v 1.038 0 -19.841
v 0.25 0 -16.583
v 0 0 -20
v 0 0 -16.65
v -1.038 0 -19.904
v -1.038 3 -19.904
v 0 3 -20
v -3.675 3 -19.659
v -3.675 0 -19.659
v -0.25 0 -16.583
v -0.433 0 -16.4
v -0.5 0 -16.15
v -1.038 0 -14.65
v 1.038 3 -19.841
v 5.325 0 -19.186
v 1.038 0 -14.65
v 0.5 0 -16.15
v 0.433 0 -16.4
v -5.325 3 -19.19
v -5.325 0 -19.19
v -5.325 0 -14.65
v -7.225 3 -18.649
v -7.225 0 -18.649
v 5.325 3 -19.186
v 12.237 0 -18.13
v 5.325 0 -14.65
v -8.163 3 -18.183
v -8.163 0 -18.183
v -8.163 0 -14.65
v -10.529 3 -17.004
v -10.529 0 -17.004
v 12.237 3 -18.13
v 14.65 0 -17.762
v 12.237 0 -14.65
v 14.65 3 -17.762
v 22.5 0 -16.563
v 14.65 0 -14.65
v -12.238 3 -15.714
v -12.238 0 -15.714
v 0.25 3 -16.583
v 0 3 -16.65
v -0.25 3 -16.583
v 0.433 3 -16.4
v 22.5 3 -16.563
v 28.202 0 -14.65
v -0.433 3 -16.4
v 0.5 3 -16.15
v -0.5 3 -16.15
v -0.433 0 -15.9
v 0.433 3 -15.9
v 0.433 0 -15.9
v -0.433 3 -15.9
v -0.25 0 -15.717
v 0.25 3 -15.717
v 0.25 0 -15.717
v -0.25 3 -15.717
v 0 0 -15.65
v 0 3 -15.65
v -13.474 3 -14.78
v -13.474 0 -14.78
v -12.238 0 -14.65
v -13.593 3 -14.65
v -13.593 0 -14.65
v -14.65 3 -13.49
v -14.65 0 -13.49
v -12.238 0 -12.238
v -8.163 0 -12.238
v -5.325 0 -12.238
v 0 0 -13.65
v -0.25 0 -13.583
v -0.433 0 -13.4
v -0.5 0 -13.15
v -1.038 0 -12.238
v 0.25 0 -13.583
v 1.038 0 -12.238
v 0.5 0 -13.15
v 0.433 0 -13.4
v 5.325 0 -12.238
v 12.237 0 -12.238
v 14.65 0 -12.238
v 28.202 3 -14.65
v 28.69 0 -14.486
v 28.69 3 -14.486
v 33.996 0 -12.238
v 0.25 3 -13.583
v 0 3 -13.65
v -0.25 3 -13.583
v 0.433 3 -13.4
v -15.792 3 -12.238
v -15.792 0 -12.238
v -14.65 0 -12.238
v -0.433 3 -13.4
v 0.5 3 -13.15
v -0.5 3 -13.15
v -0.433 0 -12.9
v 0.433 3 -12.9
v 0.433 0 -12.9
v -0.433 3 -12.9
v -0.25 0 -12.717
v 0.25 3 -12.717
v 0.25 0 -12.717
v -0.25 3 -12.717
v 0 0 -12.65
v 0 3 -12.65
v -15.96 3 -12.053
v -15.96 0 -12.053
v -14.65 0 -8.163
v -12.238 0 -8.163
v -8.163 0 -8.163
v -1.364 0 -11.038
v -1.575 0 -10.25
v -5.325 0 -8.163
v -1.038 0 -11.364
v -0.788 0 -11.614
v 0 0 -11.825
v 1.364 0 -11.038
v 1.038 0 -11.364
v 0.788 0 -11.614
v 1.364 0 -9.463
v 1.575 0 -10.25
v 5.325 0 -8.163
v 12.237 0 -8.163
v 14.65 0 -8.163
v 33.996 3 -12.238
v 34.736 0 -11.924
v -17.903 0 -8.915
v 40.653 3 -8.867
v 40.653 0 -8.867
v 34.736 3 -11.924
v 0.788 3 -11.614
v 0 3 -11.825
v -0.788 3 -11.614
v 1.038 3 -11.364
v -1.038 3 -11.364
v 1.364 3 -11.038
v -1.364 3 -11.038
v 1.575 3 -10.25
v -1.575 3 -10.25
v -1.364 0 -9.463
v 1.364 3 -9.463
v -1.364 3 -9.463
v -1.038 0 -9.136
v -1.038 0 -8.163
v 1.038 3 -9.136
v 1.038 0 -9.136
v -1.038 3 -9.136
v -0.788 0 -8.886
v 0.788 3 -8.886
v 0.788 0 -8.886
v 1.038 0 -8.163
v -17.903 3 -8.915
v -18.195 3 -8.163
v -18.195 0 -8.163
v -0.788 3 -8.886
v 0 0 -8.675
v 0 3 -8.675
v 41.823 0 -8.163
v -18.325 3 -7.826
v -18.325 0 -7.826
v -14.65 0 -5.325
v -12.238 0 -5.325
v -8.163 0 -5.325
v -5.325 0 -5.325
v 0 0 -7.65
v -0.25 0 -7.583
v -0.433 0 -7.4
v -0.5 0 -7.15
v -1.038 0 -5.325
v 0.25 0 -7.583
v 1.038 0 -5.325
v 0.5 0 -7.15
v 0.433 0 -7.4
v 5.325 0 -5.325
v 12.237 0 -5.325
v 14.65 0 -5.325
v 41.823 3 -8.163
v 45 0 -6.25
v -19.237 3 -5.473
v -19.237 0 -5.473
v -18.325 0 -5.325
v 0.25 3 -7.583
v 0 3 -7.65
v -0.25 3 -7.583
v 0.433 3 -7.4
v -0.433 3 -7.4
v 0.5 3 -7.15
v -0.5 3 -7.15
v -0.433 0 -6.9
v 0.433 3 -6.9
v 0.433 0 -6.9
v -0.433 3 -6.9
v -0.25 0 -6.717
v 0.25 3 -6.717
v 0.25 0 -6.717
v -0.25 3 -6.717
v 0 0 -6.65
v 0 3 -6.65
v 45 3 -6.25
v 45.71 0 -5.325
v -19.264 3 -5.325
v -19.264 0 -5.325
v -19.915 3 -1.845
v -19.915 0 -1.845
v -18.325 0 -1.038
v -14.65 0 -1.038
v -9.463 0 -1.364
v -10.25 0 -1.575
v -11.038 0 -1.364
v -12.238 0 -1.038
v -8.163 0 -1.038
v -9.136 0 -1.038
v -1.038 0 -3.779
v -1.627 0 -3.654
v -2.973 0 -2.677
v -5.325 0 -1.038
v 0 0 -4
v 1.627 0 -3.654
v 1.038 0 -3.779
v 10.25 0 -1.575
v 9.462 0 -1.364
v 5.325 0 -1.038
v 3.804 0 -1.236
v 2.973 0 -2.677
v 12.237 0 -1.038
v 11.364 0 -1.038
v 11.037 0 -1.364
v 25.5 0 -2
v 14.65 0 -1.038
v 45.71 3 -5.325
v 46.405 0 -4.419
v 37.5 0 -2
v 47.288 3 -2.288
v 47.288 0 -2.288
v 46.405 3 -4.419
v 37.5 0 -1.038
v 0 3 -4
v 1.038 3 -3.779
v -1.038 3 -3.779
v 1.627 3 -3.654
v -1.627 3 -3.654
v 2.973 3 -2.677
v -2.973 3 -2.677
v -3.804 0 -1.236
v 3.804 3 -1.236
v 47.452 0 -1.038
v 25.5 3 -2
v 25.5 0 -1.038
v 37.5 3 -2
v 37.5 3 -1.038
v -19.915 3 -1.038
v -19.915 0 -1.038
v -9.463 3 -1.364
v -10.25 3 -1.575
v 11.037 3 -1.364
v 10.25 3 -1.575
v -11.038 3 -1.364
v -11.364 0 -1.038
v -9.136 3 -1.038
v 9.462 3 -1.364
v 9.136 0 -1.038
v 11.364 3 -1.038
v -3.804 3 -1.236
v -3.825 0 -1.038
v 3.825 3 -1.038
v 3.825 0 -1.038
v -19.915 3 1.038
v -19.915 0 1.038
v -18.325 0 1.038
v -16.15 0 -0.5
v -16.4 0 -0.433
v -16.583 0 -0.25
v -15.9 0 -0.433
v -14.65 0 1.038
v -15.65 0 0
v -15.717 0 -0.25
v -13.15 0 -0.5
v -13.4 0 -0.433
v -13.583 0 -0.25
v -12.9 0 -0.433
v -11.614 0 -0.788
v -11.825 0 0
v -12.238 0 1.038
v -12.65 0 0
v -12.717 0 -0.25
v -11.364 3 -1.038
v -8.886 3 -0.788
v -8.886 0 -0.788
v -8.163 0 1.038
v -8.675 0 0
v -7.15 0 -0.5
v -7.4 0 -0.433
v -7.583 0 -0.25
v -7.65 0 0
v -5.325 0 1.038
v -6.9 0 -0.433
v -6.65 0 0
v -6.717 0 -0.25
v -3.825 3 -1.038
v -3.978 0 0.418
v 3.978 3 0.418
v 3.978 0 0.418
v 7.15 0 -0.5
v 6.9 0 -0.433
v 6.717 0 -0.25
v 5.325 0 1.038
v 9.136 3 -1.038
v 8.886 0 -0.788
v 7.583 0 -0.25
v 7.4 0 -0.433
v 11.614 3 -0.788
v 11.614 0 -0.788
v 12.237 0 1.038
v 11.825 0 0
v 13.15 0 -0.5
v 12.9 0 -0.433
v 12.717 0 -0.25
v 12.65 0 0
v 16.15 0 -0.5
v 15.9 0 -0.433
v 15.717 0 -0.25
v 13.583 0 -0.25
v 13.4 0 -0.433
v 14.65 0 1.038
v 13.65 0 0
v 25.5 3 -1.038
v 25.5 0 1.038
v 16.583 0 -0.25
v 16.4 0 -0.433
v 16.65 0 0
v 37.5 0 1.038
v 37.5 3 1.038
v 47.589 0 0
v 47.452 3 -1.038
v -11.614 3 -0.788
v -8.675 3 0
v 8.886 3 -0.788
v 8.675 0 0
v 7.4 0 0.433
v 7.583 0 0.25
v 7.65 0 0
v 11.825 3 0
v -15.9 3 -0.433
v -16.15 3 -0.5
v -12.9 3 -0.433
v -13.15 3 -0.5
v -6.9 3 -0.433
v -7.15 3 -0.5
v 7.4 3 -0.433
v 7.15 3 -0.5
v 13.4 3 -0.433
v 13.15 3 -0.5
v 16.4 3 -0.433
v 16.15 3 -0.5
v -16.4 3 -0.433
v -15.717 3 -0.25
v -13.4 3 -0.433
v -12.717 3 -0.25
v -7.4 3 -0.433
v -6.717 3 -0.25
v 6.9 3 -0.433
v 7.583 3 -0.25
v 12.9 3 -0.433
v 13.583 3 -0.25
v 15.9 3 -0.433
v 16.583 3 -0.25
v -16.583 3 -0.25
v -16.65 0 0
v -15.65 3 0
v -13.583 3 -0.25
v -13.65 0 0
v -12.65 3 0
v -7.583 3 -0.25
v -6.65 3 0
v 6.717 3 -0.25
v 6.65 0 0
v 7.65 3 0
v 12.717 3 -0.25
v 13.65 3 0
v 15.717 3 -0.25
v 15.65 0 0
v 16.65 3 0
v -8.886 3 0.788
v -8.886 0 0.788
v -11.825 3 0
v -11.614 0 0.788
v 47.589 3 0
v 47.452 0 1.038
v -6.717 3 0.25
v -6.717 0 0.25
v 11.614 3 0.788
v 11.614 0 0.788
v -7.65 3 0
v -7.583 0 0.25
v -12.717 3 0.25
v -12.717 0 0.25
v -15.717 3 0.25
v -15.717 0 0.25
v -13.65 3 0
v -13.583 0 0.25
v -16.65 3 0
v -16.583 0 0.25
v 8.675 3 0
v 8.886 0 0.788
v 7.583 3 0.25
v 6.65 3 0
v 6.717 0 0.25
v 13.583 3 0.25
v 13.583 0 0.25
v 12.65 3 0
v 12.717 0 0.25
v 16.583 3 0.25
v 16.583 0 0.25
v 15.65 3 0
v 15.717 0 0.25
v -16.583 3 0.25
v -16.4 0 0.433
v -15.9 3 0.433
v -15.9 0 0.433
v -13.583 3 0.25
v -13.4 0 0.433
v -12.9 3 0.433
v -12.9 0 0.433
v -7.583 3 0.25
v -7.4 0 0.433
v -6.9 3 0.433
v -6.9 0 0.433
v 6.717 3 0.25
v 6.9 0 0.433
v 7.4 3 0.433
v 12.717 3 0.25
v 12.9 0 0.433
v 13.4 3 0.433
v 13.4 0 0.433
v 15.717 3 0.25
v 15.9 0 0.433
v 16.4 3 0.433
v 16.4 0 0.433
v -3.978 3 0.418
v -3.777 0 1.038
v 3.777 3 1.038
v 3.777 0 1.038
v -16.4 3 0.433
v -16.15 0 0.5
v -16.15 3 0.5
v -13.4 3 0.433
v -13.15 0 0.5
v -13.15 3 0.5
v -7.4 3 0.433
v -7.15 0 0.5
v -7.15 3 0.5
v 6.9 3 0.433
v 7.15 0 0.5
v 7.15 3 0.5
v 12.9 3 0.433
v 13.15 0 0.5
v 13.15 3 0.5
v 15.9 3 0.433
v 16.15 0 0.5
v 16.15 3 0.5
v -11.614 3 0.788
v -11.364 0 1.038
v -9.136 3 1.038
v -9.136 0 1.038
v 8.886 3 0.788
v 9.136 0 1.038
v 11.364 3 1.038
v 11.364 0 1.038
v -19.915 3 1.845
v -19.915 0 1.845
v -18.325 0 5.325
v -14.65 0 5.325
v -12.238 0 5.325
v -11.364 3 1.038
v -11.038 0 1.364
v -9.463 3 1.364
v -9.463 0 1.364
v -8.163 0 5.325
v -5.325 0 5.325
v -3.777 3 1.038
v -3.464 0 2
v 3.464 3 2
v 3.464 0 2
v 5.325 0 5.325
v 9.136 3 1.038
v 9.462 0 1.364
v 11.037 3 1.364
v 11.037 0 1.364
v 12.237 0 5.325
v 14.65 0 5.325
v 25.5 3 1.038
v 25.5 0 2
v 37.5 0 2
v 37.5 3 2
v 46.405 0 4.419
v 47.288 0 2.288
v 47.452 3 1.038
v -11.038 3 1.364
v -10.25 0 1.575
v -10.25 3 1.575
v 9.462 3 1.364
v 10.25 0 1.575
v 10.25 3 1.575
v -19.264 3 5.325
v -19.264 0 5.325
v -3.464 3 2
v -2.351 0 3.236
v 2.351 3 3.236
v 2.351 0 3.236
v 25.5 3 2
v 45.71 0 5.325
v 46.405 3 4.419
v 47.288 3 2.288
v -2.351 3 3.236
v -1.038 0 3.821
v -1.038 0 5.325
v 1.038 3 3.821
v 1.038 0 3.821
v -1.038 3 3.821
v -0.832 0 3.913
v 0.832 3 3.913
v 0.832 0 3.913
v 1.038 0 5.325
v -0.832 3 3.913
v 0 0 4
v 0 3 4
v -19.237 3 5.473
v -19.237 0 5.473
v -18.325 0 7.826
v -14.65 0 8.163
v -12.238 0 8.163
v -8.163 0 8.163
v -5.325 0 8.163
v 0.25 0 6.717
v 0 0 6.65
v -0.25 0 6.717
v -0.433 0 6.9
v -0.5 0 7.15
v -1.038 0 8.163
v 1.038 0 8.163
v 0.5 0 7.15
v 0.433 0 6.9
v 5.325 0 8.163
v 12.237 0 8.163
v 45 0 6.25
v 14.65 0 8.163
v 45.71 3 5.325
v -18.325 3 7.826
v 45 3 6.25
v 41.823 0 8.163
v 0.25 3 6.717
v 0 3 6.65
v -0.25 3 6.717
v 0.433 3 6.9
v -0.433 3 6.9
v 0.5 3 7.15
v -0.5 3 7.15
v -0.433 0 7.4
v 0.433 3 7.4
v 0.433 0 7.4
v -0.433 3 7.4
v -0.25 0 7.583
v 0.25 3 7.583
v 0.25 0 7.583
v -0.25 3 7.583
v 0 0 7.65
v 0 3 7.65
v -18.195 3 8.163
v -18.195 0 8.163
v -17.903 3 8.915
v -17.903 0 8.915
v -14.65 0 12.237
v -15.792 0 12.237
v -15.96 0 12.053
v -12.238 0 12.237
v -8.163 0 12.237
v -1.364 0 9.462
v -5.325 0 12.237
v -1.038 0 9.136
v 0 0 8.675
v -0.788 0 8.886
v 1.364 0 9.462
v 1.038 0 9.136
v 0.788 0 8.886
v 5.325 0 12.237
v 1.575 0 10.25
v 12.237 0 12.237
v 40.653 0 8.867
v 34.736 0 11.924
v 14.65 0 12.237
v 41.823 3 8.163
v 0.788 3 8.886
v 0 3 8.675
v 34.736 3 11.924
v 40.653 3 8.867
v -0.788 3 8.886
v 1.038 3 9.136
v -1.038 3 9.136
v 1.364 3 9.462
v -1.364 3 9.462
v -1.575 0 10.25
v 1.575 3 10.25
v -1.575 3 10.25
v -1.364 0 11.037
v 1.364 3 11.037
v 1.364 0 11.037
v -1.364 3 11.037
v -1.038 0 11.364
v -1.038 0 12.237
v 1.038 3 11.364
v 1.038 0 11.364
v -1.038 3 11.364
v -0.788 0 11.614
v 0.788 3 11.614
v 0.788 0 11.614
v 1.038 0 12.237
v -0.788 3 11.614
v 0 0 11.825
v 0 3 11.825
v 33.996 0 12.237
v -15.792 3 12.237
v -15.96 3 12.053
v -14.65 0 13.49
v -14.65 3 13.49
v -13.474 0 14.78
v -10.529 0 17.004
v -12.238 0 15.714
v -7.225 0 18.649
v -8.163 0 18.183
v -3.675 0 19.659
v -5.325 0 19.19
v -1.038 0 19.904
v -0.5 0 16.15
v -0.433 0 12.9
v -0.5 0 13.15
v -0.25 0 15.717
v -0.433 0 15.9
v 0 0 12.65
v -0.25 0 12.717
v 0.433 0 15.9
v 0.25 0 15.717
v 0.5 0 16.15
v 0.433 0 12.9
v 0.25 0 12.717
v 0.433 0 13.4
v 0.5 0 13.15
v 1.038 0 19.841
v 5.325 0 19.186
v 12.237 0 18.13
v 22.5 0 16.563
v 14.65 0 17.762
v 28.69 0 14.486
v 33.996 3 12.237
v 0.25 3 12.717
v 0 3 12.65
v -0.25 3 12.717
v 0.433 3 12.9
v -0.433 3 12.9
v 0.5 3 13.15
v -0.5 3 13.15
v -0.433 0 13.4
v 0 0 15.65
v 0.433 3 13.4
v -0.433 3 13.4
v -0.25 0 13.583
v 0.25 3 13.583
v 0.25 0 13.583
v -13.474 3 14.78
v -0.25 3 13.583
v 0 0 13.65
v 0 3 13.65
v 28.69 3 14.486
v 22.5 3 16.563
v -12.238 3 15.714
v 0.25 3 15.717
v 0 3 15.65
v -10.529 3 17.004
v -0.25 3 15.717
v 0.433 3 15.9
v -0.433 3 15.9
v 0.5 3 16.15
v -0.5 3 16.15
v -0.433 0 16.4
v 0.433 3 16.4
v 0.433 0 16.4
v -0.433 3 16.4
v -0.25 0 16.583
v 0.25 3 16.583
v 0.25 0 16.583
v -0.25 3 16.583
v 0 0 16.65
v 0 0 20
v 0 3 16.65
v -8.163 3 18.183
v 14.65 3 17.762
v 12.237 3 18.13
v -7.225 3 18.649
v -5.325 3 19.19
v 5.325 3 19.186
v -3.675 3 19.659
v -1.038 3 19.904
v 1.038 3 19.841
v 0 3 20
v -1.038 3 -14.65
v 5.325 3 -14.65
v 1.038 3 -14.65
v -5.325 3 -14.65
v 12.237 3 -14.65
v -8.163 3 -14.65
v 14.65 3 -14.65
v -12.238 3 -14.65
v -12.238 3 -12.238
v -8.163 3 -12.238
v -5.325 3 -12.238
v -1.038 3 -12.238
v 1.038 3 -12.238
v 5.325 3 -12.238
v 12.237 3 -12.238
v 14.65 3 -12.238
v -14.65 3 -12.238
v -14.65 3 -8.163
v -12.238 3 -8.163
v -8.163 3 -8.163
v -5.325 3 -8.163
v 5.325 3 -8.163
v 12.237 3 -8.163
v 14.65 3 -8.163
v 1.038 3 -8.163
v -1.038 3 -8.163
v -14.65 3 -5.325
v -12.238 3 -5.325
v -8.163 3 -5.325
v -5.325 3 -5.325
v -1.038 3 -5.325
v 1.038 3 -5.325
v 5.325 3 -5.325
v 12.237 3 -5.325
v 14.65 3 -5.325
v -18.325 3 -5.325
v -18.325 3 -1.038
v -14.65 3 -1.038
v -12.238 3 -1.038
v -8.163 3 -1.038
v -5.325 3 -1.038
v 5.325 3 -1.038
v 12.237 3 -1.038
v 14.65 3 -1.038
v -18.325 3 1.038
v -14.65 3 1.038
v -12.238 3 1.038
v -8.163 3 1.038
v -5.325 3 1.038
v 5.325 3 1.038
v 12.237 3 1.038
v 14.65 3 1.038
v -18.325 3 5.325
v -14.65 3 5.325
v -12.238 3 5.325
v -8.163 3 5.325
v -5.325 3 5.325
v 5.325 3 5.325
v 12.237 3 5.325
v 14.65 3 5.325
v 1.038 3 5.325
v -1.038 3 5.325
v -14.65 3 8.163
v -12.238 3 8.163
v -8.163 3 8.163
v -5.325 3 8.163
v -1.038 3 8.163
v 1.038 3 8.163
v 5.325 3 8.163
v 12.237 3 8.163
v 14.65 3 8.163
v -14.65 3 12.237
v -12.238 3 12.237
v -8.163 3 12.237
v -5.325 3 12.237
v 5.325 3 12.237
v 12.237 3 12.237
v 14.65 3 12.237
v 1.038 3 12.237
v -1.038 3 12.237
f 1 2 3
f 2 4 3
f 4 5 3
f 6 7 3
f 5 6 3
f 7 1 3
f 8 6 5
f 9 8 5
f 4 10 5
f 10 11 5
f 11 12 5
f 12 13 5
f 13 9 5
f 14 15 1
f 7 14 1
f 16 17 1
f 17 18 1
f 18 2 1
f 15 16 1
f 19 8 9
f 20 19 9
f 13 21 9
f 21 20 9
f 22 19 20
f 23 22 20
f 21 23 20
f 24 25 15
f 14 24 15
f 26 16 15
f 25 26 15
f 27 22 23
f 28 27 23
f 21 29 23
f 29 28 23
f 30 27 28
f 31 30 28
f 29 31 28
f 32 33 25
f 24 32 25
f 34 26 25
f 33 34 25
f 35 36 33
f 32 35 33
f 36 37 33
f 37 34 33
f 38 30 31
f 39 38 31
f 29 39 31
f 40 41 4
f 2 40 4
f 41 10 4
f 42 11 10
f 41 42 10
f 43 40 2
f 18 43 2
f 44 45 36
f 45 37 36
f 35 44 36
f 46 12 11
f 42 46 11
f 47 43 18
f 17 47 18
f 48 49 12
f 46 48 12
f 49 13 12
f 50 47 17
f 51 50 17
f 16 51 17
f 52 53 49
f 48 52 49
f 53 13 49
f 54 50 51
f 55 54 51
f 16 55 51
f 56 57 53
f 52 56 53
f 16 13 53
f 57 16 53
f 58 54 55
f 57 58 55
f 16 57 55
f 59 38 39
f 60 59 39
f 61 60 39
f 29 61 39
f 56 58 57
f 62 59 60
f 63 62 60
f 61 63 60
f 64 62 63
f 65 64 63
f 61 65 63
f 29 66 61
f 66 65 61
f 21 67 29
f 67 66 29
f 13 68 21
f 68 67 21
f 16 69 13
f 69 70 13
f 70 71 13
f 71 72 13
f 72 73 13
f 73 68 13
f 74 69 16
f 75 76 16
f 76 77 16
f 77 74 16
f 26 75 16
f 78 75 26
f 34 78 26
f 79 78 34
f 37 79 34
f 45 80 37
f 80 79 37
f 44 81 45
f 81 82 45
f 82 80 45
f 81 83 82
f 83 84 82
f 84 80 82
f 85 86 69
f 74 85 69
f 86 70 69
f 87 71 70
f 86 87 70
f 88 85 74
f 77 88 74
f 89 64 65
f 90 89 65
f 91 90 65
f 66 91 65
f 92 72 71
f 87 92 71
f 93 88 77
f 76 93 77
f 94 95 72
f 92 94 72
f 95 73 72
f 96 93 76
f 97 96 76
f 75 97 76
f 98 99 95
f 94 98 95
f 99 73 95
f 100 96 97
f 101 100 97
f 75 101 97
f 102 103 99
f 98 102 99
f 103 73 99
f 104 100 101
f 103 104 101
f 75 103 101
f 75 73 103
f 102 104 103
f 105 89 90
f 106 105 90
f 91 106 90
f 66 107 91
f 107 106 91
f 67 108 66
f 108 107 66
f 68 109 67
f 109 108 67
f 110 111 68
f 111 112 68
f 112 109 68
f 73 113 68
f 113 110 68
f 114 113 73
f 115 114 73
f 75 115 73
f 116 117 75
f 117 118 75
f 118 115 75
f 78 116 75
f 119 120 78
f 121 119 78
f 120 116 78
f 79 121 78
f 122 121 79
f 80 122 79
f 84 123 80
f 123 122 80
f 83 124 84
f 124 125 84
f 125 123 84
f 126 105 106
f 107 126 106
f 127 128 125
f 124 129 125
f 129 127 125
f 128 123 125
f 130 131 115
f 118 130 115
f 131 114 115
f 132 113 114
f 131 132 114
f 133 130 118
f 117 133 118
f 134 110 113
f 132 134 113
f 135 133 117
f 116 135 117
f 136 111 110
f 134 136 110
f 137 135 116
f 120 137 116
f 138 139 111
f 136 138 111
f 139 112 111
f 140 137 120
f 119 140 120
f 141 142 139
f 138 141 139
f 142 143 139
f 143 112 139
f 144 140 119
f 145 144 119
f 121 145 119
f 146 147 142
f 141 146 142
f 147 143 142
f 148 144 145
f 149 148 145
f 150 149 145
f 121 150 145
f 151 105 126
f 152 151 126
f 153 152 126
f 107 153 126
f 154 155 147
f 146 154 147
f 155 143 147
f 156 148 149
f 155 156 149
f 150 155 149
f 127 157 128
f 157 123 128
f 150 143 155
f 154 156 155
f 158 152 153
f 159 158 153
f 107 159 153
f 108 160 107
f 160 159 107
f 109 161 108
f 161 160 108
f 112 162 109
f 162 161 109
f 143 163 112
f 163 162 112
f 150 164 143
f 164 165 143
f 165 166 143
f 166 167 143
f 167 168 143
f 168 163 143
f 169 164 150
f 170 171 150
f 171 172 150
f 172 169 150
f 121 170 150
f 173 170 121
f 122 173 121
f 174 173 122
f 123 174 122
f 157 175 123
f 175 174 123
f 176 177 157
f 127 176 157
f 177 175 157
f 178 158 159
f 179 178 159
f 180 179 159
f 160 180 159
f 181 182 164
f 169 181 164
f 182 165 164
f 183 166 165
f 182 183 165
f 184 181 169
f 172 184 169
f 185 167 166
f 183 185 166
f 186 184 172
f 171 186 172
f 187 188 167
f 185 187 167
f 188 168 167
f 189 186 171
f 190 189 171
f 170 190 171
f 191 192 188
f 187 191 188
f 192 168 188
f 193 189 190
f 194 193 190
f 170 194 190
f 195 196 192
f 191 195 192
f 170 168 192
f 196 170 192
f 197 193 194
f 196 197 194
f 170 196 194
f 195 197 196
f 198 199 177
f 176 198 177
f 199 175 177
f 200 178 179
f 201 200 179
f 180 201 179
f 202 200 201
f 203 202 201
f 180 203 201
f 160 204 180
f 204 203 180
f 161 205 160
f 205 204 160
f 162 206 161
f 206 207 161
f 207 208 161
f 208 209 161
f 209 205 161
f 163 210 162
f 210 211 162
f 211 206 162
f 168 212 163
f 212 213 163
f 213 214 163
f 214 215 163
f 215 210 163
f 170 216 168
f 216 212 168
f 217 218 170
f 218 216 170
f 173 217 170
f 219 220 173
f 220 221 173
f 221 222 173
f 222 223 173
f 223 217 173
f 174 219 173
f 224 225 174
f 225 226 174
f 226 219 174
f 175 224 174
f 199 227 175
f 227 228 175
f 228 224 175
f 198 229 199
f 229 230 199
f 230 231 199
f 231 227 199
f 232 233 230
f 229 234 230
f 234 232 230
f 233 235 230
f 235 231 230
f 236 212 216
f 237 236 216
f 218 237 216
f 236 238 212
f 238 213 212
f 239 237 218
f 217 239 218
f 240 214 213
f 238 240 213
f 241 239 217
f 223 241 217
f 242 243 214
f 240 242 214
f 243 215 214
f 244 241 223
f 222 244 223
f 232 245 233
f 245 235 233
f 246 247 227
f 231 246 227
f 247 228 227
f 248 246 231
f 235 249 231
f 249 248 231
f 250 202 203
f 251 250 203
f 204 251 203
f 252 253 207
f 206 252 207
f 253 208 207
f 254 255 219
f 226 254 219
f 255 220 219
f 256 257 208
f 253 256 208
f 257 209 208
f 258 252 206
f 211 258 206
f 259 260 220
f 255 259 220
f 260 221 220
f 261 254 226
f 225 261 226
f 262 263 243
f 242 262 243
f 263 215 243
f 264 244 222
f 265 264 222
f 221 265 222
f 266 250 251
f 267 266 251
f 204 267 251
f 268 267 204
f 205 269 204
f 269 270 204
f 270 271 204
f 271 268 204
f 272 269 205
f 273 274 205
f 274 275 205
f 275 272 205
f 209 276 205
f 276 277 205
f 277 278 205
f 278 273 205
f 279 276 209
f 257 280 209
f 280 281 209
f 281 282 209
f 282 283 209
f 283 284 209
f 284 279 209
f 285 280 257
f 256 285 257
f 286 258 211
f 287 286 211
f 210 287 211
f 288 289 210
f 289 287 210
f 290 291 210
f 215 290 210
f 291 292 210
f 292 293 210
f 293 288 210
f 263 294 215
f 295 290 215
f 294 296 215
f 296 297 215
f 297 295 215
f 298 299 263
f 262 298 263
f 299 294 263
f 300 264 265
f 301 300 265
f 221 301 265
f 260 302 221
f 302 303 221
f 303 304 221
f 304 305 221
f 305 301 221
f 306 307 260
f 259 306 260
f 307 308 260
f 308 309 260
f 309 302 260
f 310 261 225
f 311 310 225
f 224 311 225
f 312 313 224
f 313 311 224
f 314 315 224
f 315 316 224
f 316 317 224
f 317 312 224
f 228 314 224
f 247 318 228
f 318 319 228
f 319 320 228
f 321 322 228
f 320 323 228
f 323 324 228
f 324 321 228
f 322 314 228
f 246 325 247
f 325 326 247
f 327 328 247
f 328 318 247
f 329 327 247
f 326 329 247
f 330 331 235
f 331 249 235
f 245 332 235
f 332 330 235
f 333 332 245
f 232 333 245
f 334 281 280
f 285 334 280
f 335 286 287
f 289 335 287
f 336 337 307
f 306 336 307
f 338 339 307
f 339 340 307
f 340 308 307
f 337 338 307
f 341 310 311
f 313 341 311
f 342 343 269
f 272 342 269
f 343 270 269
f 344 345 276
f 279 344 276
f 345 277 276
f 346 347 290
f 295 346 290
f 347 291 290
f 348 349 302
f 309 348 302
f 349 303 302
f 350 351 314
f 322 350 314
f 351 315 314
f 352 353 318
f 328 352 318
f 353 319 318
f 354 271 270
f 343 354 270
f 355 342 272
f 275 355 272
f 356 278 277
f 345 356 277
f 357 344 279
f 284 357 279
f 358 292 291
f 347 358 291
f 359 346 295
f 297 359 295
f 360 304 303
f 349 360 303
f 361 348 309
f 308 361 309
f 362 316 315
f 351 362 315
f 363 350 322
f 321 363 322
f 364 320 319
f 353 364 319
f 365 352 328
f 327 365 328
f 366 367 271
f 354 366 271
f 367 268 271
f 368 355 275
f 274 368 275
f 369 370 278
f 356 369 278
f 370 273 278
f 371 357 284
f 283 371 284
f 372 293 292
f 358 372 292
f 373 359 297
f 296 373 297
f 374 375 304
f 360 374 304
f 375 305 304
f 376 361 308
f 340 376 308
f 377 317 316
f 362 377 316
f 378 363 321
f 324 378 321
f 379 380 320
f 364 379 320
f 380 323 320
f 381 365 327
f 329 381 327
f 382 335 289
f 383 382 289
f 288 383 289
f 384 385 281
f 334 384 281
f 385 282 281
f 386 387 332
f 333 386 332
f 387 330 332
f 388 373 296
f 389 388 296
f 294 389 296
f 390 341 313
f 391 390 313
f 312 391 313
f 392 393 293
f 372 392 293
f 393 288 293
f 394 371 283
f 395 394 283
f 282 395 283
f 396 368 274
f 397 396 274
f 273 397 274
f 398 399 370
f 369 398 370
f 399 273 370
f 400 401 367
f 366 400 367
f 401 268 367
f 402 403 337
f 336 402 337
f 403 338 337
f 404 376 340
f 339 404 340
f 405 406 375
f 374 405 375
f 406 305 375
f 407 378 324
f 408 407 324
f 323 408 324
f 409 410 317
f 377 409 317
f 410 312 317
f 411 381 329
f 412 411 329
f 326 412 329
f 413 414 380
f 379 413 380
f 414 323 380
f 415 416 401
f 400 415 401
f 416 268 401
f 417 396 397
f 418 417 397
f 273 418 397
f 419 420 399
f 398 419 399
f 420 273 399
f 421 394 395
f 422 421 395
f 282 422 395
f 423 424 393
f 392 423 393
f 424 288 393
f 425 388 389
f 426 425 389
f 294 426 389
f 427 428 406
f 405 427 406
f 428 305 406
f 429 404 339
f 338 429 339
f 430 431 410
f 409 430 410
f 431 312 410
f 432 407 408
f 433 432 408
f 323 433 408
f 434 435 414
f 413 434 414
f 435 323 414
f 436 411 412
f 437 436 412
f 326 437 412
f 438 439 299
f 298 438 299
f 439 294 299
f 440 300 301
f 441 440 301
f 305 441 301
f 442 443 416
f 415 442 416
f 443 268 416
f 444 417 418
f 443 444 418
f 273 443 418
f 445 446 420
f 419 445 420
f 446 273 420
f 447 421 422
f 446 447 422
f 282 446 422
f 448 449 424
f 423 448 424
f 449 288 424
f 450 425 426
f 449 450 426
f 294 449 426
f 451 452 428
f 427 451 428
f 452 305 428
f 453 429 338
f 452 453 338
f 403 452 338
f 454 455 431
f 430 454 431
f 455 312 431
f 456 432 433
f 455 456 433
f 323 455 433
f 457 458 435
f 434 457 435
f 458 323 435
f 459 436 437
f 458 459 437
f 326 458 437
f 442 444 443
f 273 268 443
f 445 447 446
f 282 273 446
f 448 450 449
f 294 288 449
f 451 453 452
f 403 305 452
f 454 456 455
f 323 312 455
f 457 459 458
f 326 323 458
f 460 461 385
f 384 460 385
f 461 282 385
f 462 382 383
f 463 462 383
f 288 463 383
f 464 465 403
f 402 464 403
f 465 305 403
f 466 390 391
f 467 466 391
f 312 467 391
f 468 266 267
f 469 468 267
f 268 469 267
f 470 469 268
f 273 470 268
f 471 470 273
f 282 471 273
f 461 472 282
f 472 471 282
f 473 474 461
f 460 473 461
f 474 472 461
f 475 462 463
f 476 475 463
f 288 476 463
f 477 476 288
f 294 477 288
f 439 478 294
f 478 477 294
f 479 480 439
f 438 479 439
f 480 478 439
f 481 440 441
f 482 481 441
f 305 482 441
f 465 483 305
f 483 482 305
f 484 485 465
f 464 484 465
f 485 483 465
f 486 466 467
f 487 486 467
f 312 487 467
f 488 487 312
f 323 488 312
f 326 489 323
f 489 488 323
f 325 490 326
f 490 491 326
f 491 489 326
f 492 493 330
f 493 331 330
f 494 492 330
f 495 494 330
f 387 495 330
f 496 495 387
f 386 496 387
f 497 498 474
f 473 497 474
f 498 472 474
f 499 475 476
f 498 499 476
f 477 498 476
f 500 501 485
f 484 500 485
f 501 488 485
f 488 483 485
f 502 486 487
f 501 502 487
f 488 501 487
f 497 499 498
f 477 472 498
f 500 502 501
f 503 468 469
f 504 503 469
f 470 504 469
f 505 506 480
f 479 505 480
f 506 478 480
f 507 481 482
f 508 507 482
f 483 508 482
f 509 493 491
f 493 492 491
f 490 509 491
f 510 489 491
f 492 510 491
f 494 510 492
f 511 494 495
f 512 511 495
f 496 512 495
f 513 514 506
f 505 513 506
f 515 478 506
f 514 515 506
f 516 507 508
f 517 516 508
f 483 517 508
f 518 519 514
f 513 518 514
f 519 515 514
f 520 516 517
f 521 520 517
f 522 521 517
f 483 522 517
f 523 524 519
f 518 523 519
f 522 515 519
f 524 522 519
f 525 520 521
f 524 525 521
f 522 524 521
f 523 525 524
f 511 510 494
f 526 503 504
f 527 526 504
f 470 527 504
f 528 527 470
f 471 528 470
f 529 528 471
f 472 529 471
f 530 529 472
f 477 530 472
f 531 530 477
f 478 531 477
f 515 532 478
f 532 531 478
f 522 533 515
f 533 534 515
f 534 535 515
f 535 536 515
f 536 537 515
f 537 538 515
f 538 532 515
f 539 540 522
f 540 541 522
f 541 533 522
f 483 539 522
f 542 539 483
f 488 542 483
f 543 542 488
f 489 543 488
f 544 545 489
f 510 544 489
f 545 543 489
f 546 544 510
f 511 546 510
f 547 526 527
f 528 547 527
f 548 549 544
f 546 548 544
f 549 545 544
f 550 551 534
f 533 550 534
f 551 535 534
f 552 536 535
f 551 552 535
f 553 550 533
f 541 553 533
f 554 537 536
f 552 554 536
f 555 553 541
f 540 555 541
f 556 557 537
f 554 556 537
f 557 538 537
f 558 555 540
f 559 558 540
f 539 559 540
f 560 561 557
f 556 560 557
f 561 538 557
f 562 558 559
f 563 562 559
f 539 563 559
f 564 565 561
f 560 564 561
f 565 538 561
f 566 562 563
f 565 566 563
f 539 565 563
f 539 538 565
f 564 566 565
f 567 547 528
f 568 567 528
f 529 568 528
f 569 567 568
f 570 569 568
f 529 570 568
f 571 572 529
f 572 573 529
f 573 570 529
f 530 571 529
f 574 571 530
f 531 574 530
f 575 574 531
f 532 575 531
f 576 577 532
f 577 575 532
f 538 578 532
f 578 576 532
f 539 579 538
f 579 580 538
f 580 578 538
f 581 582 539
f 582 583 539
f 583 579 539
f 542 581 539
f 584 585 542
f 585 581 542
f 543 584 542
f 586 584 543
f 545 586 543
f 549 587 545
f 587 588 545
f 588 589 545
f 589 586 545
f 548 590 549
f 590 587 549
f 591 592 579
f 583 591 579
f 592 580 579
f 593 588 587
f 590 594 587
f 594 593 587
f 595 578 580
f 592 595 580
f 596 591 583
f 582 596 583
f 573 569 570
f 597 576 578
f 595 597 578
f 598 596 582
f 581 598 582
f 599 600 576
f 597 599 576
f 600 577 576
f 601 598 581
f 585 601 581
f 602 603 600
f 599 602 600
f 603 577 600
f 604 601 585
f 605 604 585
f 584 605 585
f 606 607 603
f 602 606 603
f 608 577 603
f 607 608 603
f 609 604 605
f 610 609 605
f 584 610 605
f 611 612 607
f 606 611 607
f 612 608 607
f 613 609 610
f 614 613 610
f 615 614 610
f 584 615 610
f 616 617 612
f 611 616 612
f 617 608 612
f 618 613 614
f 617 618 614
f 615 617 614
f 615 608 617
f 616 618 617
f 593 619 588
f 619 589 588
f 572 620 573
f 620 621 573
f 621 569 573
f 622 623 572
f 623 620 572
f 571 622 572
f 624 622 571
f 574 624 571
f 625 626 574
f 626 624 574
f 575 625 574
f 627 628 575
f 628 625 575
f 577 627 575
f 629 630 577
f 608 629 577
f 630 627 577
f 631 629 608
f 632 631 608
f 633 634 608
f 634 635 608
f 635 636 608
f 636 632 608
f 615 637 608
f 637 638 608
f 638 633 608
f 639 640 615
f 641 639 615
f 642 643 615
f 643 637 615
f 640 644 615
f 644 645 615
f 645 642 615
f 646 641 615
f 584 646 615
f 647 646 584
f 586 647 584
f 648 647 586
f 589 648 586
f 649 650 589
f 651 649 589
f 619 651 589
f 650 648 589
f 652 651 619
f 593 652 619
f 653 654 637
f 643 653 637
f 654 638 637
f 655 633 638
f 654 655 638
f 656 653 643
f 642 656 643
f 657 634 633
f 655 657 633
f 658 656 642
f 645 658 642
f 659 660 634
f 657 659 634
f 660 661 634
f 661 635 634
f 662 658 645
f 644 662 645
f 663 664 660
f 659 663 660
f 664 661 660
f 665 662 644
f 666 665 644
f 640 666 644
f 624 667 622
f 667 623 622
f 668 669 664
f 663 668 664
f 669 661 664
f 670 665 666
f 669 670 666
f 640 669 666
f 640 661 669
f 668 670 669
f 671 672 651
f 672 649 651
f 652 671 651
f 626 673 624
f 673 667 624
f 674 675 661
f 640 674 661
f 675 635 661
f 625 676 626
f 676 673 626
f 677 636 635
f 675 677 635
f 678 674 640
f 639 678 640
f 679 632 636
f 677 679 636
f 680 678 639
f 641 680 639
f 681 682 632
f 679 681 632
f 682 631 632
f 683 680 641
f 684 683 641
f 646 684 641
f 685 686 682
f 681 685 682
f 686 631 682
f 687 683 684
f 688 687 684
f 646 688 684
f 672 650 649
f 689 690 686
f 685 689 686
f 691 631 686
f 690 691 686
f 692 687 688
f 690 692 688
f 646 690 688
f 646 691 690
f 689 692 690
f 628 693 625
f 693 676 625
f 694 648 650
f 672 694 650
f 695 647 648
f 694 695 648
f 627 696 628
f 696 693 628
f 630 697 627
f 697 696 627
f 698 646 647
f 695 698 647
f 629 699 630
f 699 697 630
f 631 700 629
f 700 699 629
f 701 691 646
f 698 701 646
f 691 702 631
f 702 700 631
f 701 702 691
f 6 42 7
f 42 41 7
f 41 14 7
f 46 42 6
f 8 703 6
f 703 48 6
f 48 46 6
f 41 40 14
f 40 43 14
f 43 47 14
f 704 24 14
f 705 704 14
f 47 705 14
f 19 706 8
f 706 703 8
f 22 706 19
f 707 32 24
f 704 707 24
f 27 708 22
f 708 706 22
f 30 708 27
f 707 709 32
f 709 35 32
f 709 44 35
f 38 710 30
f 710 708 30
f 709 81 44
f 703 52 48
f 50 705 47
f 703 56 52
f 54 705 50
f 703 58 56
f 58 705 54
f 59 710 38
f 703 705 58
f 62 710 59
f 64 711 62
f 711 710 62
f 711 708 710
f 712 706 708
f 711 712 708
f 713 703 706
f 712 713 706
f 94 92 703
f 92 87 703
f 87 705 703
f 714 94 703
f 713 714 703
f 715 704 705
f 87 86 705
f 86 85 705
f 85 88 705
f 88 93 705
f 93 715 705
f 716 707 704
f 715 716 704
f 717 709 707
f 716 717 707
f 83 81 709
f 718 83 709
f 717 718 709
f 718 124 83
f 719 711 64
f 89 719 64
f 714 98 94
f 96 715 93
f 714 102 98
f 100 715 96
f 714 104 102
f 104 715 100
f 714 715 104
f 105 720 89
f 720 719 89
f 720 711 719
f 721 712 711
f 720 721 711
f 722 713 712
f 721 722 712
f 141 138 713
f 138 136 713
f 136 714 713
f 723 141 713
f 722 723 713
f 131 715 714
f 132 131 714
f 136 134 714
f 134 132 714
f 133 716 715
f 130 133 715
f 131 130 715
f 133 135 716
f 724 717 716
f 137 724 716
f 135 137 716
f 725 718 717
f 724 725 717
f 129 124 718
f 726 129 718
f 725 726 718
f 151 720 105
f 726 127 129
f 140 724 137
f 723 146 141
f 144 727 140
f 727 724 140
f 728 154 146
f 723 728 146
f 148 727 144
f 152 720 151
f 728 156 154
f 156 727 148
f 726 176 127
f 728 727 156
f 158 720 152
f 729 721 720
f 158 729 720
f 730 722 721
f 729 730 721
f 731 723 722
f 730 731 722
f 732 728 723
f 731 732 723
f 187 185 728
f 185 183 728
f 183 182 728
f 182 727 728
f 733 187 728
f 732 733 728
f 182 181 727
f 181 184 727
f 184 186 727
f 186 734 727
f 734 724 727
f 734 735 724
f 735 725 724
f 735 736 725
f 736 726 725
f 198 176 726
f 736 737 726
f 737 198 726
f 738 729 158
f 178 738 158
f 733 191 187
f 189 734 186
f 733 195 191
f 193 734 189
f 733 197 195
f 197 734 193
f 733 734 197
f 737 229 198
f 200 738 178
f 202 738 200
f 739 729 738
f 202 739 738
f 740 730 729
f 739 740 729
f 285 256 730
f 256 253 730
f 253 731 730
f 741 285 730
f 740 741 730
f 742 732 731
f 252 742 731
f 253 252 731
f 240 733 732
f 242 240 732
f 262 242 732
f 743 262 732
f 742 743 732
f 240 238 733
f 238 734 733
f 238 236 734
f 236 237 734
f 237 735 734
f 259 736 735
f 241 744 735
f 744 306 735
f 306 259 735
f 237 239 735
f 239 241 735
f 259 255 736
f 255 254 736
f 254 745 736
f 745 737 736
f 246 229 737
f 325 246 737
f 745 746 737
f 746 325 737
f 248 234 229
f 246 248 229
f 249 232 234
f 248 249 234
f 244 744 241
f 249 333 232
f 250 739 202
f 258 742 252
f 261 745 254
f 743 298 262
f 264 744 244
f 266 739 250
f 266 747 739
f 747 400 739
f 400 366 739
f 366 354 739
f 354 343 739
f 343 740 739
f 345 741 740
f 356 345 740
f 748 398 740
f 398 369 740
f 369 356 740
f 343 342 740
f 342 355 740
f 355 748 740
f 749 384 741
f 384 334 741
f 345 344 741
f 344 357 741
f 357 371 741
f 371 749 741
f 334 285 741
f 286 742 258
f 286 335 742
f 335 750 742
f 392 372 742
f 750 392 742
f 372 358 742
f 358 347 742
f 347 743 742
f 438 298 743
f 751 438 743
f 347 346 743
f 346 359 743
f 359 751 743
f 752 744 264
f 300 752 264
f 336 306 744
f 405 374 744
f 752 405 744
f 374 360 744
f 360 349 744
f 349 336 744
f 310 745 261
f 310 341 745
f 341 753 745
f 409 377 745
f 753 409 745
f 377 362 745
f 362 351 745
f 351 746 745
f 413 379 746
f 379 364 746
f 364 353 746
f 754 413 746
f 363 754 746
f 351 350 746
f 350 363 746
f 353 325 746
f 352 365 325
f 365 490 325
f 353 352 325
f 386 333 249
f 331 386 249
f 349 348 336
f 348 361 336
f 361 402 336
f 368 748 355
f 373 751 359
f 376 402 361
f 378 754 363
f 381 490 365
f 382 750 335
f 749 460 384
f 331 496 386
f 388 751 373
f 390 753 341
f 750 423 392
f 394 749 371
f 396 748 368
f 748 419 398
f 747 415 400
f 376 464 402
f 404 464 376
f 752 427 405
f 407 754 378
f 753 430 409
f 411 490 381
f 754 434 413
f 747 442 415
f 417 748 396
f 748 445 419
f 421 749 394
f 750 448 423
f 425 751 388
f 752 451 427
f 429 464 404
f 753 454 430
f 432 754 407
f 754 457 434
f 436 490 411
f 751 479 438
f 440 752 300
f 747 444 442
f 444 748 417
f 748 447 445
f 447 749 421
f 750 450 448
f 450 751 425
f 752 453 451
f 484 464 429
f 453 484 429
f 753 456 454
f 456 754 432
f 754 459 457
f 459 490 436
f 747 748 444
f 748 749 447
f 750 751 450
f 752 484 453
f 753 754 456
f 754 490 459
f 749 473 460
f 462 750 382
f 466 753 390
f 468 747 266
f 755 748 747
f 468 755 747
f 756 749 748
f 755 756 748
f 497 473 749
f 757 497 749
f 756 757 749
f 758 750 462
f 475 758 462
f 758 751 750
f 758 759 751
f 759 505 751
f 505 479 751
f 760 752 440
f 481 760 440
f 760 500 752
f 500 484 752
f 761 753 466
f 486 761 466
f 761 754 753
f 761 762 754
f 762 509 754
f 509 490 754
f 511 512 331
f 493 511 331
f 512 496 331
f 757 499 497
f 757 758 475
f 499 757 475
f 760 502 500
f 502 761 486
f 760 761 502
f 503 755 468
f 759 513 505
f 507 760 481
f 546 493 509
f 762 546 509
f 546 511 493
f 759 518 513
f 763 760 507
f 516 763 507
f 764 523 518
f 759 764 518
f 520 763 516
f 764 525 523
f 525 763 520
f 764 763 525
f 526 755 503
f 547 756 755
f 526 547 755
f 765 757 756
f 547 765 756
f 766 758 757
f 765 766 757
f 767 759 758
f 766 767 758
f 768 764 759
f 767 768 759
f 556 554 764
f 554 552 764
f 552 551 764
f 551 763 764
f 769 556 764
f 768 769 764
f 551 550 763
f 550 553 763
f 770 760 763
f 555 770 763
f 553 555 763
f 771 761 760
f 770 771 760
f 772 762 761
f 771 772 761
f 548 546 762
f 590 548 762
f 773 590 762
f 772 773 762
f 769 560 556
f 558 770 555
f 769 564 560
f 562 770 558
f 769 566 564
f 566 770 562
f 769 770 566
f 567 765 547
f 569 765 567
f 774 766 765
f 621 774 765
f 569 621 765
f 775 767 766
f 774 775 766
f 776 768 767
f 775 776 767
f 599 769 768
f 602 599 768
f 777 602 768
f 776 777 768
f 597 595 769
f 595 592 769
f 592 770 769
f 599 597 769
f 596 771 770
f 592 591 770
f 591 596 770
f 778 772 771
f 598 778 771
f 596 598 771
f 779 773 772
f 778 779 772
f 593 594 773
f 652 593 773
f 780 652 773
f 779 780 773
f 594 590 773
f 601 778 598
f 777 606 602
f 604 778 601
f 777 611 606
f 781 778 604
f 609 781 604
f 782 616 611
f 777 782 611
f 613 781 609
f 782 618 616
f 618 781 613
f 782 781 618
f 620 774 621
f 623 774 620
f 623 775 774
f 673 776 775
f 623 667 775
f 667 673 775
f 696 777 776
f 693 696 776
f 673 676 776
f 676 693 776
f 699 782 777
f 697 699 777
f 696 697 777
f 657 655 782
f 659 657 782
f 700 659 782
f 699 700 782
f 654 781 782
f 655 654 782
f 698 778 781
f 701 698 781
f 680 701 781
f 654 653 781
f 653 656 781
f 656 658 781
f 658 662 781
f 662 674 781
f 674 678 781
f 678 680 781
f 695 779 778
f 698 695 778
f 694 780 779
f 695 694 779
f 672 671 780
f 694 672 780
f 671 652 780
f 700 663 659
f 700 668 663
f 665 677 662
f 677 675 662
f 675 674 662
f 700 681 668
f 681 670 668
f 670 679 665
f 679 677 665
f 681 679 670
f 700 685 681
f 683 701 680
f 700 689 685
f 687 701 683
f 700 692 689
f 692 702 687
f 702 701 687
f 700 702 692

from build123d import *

# Parameters (mm, degrees)
SKETCH1_R           = 0.5
SKETCH1_R_2         = 1.575
SKETCH1_W           = 12
SKETCH1_H           = 4
BOSS_EXTRUDE1_DEPTH = 3


with BuildPart() as part:
    # Sketch1 → Boss-Extrude1 (new body)
    with BuildSketch(Plane(origin=(0, 0, 0), x_dir=(1, 0, 0), z_dir=(0, 1, 0))):
        with BuildLine():
            add(Edge.make_bspline(
                [(22.5, -16.5625), (34.262295129, -13.118708317), (45, -6.25)],
                knots=[0.479061635, 0.479061635, 0.479061635, 1, 1, 1], degree=2))
            ThreePointArc((45, -6.25), (47.588834765, 0), (45, 6.25))
            add(Edge.make_bspline(
                [(22.5, 16.5625), (34.262295129, 13.118708317), (45, 6.25)],
                knots=[0.479061635, 0.479061635, 0.479061635, 1, 1, 1], degree=2))
            Line((22.5, 16.5625), (0, 20))
            ThreePointArc((0, 20), (-20, 0), (0, -20))
            Line((0, -20), (22.5, -16.5625))
        make_face()
        with Locations(Location((0, -16.15, 0), (0, 0, 270))):
            Circle(SKETCH1_R, mode=Mode.SUBTRACT)
        with Locations(Location((0, -13.15, 0), (0, 0, 270))):
            Circle(SKETCH1_R, mode=Mode.SUBTRACT)
        with Locations(Location((0, -10.25, 0), (0, 0, 270))):
            Circle(SKETCH1_R_2, mode=Mode.SUBTRACT)
        with Locations(Location((-16.15, 0, 0), (0, 0, 270))):
            Circle(SKETCH1_R, mode=Mode.SUBTRACT)
        with BuildLine():
            ThreePointArc((-13.65, 0), (-13.15, 0.5), (-12.65, 0))
            ThreePointArc((-12.65, 0), (-13.15, -0.5), (-13.65, 0))
        make_face(mode=Mode.SUBTRACT)
        with BuildLine():
            ThreePointArc((-7.65, 0), (-7.15, 0.5), (-6.65, 0))
            ThreePointArc((-6.65, 0), (-7.15, -0.5), (-7.65, 0))
        make_face(mode=Mode.SUBTRACT)
        with Locations(Location((0, -7.15, 0), (0, 0, 270))):
            Circle(SKETCH1_R, mode=Mode.SUBTRACT)
        with BuildLine():
            ThreePointArc((3.177944539, 2.429129166), (1.282228888, -3.78891661), (-4, 0))
            ThreePointArc((-4, 0), (-1.282228888, 3.78891661), (3.177944539, 2.429129166))
        make_face(mode=Mode.SUBTRACT)
        with Locations(Location((7.15, 0, 0), (0, 0, 270))):
            Circle(SKETCH1_R, mode=Mode.SUBTRACT)
        with Locations(Location((10.25, 0, 0), (0, 0, 270))):
            Circle(SKETCH1_R_2, mode=Mode.SUBTRACT)
        with Locations(Location((13.15, 0, 0), (0, 0, 270))):
            Circle(SKETCH1_R, mode=Mode.SUBTRACT)
        with Locations(Location((16.15, 0, 0), (0, 0, 270))):
            Circle(SKETCH1_R, mode=Mode.SUBTRACT)
        with BuildLine():
            ThreePointArc((-11.825, 0), (-10.25, 1.575), (-8.675, 0))
            ThreePointArc((-8.675, 0), (-10.25, -1.575), (-11.825, 0))
        make_face(mode=Mode.SUBTRACT)
        with Locations(Location((0, 7.15, 0), (0, 0, 270))):
            Circle(SKETCH1_R, mode=Mode.SUBTRACT)
        with Locations(Location((0, 10.25, 0), (0, 0, 270))):
            Circle(SKETCH1_R_2, mode=Mode.SUBTRACT)
        with Locations(Location((0, 13.15, 0), (0, 0, 270))):
            Circle(SKETCH1_R, mode=Mode.SUBTRACT)
        with Locations(Location((0, 16.15, 0), (0, 0, 270))):
            Circle(SKETCH1_R, mode=Mode.SUBTRACT)
        with Locations((31.5, 0)):
            Rectangle(SKETCH1_W, SKETCH1_H, mode=Mode.SUBTRACT)
    extrude(amount=BOSS_EXTRUDE1_DEPTH)


solid = part.part
